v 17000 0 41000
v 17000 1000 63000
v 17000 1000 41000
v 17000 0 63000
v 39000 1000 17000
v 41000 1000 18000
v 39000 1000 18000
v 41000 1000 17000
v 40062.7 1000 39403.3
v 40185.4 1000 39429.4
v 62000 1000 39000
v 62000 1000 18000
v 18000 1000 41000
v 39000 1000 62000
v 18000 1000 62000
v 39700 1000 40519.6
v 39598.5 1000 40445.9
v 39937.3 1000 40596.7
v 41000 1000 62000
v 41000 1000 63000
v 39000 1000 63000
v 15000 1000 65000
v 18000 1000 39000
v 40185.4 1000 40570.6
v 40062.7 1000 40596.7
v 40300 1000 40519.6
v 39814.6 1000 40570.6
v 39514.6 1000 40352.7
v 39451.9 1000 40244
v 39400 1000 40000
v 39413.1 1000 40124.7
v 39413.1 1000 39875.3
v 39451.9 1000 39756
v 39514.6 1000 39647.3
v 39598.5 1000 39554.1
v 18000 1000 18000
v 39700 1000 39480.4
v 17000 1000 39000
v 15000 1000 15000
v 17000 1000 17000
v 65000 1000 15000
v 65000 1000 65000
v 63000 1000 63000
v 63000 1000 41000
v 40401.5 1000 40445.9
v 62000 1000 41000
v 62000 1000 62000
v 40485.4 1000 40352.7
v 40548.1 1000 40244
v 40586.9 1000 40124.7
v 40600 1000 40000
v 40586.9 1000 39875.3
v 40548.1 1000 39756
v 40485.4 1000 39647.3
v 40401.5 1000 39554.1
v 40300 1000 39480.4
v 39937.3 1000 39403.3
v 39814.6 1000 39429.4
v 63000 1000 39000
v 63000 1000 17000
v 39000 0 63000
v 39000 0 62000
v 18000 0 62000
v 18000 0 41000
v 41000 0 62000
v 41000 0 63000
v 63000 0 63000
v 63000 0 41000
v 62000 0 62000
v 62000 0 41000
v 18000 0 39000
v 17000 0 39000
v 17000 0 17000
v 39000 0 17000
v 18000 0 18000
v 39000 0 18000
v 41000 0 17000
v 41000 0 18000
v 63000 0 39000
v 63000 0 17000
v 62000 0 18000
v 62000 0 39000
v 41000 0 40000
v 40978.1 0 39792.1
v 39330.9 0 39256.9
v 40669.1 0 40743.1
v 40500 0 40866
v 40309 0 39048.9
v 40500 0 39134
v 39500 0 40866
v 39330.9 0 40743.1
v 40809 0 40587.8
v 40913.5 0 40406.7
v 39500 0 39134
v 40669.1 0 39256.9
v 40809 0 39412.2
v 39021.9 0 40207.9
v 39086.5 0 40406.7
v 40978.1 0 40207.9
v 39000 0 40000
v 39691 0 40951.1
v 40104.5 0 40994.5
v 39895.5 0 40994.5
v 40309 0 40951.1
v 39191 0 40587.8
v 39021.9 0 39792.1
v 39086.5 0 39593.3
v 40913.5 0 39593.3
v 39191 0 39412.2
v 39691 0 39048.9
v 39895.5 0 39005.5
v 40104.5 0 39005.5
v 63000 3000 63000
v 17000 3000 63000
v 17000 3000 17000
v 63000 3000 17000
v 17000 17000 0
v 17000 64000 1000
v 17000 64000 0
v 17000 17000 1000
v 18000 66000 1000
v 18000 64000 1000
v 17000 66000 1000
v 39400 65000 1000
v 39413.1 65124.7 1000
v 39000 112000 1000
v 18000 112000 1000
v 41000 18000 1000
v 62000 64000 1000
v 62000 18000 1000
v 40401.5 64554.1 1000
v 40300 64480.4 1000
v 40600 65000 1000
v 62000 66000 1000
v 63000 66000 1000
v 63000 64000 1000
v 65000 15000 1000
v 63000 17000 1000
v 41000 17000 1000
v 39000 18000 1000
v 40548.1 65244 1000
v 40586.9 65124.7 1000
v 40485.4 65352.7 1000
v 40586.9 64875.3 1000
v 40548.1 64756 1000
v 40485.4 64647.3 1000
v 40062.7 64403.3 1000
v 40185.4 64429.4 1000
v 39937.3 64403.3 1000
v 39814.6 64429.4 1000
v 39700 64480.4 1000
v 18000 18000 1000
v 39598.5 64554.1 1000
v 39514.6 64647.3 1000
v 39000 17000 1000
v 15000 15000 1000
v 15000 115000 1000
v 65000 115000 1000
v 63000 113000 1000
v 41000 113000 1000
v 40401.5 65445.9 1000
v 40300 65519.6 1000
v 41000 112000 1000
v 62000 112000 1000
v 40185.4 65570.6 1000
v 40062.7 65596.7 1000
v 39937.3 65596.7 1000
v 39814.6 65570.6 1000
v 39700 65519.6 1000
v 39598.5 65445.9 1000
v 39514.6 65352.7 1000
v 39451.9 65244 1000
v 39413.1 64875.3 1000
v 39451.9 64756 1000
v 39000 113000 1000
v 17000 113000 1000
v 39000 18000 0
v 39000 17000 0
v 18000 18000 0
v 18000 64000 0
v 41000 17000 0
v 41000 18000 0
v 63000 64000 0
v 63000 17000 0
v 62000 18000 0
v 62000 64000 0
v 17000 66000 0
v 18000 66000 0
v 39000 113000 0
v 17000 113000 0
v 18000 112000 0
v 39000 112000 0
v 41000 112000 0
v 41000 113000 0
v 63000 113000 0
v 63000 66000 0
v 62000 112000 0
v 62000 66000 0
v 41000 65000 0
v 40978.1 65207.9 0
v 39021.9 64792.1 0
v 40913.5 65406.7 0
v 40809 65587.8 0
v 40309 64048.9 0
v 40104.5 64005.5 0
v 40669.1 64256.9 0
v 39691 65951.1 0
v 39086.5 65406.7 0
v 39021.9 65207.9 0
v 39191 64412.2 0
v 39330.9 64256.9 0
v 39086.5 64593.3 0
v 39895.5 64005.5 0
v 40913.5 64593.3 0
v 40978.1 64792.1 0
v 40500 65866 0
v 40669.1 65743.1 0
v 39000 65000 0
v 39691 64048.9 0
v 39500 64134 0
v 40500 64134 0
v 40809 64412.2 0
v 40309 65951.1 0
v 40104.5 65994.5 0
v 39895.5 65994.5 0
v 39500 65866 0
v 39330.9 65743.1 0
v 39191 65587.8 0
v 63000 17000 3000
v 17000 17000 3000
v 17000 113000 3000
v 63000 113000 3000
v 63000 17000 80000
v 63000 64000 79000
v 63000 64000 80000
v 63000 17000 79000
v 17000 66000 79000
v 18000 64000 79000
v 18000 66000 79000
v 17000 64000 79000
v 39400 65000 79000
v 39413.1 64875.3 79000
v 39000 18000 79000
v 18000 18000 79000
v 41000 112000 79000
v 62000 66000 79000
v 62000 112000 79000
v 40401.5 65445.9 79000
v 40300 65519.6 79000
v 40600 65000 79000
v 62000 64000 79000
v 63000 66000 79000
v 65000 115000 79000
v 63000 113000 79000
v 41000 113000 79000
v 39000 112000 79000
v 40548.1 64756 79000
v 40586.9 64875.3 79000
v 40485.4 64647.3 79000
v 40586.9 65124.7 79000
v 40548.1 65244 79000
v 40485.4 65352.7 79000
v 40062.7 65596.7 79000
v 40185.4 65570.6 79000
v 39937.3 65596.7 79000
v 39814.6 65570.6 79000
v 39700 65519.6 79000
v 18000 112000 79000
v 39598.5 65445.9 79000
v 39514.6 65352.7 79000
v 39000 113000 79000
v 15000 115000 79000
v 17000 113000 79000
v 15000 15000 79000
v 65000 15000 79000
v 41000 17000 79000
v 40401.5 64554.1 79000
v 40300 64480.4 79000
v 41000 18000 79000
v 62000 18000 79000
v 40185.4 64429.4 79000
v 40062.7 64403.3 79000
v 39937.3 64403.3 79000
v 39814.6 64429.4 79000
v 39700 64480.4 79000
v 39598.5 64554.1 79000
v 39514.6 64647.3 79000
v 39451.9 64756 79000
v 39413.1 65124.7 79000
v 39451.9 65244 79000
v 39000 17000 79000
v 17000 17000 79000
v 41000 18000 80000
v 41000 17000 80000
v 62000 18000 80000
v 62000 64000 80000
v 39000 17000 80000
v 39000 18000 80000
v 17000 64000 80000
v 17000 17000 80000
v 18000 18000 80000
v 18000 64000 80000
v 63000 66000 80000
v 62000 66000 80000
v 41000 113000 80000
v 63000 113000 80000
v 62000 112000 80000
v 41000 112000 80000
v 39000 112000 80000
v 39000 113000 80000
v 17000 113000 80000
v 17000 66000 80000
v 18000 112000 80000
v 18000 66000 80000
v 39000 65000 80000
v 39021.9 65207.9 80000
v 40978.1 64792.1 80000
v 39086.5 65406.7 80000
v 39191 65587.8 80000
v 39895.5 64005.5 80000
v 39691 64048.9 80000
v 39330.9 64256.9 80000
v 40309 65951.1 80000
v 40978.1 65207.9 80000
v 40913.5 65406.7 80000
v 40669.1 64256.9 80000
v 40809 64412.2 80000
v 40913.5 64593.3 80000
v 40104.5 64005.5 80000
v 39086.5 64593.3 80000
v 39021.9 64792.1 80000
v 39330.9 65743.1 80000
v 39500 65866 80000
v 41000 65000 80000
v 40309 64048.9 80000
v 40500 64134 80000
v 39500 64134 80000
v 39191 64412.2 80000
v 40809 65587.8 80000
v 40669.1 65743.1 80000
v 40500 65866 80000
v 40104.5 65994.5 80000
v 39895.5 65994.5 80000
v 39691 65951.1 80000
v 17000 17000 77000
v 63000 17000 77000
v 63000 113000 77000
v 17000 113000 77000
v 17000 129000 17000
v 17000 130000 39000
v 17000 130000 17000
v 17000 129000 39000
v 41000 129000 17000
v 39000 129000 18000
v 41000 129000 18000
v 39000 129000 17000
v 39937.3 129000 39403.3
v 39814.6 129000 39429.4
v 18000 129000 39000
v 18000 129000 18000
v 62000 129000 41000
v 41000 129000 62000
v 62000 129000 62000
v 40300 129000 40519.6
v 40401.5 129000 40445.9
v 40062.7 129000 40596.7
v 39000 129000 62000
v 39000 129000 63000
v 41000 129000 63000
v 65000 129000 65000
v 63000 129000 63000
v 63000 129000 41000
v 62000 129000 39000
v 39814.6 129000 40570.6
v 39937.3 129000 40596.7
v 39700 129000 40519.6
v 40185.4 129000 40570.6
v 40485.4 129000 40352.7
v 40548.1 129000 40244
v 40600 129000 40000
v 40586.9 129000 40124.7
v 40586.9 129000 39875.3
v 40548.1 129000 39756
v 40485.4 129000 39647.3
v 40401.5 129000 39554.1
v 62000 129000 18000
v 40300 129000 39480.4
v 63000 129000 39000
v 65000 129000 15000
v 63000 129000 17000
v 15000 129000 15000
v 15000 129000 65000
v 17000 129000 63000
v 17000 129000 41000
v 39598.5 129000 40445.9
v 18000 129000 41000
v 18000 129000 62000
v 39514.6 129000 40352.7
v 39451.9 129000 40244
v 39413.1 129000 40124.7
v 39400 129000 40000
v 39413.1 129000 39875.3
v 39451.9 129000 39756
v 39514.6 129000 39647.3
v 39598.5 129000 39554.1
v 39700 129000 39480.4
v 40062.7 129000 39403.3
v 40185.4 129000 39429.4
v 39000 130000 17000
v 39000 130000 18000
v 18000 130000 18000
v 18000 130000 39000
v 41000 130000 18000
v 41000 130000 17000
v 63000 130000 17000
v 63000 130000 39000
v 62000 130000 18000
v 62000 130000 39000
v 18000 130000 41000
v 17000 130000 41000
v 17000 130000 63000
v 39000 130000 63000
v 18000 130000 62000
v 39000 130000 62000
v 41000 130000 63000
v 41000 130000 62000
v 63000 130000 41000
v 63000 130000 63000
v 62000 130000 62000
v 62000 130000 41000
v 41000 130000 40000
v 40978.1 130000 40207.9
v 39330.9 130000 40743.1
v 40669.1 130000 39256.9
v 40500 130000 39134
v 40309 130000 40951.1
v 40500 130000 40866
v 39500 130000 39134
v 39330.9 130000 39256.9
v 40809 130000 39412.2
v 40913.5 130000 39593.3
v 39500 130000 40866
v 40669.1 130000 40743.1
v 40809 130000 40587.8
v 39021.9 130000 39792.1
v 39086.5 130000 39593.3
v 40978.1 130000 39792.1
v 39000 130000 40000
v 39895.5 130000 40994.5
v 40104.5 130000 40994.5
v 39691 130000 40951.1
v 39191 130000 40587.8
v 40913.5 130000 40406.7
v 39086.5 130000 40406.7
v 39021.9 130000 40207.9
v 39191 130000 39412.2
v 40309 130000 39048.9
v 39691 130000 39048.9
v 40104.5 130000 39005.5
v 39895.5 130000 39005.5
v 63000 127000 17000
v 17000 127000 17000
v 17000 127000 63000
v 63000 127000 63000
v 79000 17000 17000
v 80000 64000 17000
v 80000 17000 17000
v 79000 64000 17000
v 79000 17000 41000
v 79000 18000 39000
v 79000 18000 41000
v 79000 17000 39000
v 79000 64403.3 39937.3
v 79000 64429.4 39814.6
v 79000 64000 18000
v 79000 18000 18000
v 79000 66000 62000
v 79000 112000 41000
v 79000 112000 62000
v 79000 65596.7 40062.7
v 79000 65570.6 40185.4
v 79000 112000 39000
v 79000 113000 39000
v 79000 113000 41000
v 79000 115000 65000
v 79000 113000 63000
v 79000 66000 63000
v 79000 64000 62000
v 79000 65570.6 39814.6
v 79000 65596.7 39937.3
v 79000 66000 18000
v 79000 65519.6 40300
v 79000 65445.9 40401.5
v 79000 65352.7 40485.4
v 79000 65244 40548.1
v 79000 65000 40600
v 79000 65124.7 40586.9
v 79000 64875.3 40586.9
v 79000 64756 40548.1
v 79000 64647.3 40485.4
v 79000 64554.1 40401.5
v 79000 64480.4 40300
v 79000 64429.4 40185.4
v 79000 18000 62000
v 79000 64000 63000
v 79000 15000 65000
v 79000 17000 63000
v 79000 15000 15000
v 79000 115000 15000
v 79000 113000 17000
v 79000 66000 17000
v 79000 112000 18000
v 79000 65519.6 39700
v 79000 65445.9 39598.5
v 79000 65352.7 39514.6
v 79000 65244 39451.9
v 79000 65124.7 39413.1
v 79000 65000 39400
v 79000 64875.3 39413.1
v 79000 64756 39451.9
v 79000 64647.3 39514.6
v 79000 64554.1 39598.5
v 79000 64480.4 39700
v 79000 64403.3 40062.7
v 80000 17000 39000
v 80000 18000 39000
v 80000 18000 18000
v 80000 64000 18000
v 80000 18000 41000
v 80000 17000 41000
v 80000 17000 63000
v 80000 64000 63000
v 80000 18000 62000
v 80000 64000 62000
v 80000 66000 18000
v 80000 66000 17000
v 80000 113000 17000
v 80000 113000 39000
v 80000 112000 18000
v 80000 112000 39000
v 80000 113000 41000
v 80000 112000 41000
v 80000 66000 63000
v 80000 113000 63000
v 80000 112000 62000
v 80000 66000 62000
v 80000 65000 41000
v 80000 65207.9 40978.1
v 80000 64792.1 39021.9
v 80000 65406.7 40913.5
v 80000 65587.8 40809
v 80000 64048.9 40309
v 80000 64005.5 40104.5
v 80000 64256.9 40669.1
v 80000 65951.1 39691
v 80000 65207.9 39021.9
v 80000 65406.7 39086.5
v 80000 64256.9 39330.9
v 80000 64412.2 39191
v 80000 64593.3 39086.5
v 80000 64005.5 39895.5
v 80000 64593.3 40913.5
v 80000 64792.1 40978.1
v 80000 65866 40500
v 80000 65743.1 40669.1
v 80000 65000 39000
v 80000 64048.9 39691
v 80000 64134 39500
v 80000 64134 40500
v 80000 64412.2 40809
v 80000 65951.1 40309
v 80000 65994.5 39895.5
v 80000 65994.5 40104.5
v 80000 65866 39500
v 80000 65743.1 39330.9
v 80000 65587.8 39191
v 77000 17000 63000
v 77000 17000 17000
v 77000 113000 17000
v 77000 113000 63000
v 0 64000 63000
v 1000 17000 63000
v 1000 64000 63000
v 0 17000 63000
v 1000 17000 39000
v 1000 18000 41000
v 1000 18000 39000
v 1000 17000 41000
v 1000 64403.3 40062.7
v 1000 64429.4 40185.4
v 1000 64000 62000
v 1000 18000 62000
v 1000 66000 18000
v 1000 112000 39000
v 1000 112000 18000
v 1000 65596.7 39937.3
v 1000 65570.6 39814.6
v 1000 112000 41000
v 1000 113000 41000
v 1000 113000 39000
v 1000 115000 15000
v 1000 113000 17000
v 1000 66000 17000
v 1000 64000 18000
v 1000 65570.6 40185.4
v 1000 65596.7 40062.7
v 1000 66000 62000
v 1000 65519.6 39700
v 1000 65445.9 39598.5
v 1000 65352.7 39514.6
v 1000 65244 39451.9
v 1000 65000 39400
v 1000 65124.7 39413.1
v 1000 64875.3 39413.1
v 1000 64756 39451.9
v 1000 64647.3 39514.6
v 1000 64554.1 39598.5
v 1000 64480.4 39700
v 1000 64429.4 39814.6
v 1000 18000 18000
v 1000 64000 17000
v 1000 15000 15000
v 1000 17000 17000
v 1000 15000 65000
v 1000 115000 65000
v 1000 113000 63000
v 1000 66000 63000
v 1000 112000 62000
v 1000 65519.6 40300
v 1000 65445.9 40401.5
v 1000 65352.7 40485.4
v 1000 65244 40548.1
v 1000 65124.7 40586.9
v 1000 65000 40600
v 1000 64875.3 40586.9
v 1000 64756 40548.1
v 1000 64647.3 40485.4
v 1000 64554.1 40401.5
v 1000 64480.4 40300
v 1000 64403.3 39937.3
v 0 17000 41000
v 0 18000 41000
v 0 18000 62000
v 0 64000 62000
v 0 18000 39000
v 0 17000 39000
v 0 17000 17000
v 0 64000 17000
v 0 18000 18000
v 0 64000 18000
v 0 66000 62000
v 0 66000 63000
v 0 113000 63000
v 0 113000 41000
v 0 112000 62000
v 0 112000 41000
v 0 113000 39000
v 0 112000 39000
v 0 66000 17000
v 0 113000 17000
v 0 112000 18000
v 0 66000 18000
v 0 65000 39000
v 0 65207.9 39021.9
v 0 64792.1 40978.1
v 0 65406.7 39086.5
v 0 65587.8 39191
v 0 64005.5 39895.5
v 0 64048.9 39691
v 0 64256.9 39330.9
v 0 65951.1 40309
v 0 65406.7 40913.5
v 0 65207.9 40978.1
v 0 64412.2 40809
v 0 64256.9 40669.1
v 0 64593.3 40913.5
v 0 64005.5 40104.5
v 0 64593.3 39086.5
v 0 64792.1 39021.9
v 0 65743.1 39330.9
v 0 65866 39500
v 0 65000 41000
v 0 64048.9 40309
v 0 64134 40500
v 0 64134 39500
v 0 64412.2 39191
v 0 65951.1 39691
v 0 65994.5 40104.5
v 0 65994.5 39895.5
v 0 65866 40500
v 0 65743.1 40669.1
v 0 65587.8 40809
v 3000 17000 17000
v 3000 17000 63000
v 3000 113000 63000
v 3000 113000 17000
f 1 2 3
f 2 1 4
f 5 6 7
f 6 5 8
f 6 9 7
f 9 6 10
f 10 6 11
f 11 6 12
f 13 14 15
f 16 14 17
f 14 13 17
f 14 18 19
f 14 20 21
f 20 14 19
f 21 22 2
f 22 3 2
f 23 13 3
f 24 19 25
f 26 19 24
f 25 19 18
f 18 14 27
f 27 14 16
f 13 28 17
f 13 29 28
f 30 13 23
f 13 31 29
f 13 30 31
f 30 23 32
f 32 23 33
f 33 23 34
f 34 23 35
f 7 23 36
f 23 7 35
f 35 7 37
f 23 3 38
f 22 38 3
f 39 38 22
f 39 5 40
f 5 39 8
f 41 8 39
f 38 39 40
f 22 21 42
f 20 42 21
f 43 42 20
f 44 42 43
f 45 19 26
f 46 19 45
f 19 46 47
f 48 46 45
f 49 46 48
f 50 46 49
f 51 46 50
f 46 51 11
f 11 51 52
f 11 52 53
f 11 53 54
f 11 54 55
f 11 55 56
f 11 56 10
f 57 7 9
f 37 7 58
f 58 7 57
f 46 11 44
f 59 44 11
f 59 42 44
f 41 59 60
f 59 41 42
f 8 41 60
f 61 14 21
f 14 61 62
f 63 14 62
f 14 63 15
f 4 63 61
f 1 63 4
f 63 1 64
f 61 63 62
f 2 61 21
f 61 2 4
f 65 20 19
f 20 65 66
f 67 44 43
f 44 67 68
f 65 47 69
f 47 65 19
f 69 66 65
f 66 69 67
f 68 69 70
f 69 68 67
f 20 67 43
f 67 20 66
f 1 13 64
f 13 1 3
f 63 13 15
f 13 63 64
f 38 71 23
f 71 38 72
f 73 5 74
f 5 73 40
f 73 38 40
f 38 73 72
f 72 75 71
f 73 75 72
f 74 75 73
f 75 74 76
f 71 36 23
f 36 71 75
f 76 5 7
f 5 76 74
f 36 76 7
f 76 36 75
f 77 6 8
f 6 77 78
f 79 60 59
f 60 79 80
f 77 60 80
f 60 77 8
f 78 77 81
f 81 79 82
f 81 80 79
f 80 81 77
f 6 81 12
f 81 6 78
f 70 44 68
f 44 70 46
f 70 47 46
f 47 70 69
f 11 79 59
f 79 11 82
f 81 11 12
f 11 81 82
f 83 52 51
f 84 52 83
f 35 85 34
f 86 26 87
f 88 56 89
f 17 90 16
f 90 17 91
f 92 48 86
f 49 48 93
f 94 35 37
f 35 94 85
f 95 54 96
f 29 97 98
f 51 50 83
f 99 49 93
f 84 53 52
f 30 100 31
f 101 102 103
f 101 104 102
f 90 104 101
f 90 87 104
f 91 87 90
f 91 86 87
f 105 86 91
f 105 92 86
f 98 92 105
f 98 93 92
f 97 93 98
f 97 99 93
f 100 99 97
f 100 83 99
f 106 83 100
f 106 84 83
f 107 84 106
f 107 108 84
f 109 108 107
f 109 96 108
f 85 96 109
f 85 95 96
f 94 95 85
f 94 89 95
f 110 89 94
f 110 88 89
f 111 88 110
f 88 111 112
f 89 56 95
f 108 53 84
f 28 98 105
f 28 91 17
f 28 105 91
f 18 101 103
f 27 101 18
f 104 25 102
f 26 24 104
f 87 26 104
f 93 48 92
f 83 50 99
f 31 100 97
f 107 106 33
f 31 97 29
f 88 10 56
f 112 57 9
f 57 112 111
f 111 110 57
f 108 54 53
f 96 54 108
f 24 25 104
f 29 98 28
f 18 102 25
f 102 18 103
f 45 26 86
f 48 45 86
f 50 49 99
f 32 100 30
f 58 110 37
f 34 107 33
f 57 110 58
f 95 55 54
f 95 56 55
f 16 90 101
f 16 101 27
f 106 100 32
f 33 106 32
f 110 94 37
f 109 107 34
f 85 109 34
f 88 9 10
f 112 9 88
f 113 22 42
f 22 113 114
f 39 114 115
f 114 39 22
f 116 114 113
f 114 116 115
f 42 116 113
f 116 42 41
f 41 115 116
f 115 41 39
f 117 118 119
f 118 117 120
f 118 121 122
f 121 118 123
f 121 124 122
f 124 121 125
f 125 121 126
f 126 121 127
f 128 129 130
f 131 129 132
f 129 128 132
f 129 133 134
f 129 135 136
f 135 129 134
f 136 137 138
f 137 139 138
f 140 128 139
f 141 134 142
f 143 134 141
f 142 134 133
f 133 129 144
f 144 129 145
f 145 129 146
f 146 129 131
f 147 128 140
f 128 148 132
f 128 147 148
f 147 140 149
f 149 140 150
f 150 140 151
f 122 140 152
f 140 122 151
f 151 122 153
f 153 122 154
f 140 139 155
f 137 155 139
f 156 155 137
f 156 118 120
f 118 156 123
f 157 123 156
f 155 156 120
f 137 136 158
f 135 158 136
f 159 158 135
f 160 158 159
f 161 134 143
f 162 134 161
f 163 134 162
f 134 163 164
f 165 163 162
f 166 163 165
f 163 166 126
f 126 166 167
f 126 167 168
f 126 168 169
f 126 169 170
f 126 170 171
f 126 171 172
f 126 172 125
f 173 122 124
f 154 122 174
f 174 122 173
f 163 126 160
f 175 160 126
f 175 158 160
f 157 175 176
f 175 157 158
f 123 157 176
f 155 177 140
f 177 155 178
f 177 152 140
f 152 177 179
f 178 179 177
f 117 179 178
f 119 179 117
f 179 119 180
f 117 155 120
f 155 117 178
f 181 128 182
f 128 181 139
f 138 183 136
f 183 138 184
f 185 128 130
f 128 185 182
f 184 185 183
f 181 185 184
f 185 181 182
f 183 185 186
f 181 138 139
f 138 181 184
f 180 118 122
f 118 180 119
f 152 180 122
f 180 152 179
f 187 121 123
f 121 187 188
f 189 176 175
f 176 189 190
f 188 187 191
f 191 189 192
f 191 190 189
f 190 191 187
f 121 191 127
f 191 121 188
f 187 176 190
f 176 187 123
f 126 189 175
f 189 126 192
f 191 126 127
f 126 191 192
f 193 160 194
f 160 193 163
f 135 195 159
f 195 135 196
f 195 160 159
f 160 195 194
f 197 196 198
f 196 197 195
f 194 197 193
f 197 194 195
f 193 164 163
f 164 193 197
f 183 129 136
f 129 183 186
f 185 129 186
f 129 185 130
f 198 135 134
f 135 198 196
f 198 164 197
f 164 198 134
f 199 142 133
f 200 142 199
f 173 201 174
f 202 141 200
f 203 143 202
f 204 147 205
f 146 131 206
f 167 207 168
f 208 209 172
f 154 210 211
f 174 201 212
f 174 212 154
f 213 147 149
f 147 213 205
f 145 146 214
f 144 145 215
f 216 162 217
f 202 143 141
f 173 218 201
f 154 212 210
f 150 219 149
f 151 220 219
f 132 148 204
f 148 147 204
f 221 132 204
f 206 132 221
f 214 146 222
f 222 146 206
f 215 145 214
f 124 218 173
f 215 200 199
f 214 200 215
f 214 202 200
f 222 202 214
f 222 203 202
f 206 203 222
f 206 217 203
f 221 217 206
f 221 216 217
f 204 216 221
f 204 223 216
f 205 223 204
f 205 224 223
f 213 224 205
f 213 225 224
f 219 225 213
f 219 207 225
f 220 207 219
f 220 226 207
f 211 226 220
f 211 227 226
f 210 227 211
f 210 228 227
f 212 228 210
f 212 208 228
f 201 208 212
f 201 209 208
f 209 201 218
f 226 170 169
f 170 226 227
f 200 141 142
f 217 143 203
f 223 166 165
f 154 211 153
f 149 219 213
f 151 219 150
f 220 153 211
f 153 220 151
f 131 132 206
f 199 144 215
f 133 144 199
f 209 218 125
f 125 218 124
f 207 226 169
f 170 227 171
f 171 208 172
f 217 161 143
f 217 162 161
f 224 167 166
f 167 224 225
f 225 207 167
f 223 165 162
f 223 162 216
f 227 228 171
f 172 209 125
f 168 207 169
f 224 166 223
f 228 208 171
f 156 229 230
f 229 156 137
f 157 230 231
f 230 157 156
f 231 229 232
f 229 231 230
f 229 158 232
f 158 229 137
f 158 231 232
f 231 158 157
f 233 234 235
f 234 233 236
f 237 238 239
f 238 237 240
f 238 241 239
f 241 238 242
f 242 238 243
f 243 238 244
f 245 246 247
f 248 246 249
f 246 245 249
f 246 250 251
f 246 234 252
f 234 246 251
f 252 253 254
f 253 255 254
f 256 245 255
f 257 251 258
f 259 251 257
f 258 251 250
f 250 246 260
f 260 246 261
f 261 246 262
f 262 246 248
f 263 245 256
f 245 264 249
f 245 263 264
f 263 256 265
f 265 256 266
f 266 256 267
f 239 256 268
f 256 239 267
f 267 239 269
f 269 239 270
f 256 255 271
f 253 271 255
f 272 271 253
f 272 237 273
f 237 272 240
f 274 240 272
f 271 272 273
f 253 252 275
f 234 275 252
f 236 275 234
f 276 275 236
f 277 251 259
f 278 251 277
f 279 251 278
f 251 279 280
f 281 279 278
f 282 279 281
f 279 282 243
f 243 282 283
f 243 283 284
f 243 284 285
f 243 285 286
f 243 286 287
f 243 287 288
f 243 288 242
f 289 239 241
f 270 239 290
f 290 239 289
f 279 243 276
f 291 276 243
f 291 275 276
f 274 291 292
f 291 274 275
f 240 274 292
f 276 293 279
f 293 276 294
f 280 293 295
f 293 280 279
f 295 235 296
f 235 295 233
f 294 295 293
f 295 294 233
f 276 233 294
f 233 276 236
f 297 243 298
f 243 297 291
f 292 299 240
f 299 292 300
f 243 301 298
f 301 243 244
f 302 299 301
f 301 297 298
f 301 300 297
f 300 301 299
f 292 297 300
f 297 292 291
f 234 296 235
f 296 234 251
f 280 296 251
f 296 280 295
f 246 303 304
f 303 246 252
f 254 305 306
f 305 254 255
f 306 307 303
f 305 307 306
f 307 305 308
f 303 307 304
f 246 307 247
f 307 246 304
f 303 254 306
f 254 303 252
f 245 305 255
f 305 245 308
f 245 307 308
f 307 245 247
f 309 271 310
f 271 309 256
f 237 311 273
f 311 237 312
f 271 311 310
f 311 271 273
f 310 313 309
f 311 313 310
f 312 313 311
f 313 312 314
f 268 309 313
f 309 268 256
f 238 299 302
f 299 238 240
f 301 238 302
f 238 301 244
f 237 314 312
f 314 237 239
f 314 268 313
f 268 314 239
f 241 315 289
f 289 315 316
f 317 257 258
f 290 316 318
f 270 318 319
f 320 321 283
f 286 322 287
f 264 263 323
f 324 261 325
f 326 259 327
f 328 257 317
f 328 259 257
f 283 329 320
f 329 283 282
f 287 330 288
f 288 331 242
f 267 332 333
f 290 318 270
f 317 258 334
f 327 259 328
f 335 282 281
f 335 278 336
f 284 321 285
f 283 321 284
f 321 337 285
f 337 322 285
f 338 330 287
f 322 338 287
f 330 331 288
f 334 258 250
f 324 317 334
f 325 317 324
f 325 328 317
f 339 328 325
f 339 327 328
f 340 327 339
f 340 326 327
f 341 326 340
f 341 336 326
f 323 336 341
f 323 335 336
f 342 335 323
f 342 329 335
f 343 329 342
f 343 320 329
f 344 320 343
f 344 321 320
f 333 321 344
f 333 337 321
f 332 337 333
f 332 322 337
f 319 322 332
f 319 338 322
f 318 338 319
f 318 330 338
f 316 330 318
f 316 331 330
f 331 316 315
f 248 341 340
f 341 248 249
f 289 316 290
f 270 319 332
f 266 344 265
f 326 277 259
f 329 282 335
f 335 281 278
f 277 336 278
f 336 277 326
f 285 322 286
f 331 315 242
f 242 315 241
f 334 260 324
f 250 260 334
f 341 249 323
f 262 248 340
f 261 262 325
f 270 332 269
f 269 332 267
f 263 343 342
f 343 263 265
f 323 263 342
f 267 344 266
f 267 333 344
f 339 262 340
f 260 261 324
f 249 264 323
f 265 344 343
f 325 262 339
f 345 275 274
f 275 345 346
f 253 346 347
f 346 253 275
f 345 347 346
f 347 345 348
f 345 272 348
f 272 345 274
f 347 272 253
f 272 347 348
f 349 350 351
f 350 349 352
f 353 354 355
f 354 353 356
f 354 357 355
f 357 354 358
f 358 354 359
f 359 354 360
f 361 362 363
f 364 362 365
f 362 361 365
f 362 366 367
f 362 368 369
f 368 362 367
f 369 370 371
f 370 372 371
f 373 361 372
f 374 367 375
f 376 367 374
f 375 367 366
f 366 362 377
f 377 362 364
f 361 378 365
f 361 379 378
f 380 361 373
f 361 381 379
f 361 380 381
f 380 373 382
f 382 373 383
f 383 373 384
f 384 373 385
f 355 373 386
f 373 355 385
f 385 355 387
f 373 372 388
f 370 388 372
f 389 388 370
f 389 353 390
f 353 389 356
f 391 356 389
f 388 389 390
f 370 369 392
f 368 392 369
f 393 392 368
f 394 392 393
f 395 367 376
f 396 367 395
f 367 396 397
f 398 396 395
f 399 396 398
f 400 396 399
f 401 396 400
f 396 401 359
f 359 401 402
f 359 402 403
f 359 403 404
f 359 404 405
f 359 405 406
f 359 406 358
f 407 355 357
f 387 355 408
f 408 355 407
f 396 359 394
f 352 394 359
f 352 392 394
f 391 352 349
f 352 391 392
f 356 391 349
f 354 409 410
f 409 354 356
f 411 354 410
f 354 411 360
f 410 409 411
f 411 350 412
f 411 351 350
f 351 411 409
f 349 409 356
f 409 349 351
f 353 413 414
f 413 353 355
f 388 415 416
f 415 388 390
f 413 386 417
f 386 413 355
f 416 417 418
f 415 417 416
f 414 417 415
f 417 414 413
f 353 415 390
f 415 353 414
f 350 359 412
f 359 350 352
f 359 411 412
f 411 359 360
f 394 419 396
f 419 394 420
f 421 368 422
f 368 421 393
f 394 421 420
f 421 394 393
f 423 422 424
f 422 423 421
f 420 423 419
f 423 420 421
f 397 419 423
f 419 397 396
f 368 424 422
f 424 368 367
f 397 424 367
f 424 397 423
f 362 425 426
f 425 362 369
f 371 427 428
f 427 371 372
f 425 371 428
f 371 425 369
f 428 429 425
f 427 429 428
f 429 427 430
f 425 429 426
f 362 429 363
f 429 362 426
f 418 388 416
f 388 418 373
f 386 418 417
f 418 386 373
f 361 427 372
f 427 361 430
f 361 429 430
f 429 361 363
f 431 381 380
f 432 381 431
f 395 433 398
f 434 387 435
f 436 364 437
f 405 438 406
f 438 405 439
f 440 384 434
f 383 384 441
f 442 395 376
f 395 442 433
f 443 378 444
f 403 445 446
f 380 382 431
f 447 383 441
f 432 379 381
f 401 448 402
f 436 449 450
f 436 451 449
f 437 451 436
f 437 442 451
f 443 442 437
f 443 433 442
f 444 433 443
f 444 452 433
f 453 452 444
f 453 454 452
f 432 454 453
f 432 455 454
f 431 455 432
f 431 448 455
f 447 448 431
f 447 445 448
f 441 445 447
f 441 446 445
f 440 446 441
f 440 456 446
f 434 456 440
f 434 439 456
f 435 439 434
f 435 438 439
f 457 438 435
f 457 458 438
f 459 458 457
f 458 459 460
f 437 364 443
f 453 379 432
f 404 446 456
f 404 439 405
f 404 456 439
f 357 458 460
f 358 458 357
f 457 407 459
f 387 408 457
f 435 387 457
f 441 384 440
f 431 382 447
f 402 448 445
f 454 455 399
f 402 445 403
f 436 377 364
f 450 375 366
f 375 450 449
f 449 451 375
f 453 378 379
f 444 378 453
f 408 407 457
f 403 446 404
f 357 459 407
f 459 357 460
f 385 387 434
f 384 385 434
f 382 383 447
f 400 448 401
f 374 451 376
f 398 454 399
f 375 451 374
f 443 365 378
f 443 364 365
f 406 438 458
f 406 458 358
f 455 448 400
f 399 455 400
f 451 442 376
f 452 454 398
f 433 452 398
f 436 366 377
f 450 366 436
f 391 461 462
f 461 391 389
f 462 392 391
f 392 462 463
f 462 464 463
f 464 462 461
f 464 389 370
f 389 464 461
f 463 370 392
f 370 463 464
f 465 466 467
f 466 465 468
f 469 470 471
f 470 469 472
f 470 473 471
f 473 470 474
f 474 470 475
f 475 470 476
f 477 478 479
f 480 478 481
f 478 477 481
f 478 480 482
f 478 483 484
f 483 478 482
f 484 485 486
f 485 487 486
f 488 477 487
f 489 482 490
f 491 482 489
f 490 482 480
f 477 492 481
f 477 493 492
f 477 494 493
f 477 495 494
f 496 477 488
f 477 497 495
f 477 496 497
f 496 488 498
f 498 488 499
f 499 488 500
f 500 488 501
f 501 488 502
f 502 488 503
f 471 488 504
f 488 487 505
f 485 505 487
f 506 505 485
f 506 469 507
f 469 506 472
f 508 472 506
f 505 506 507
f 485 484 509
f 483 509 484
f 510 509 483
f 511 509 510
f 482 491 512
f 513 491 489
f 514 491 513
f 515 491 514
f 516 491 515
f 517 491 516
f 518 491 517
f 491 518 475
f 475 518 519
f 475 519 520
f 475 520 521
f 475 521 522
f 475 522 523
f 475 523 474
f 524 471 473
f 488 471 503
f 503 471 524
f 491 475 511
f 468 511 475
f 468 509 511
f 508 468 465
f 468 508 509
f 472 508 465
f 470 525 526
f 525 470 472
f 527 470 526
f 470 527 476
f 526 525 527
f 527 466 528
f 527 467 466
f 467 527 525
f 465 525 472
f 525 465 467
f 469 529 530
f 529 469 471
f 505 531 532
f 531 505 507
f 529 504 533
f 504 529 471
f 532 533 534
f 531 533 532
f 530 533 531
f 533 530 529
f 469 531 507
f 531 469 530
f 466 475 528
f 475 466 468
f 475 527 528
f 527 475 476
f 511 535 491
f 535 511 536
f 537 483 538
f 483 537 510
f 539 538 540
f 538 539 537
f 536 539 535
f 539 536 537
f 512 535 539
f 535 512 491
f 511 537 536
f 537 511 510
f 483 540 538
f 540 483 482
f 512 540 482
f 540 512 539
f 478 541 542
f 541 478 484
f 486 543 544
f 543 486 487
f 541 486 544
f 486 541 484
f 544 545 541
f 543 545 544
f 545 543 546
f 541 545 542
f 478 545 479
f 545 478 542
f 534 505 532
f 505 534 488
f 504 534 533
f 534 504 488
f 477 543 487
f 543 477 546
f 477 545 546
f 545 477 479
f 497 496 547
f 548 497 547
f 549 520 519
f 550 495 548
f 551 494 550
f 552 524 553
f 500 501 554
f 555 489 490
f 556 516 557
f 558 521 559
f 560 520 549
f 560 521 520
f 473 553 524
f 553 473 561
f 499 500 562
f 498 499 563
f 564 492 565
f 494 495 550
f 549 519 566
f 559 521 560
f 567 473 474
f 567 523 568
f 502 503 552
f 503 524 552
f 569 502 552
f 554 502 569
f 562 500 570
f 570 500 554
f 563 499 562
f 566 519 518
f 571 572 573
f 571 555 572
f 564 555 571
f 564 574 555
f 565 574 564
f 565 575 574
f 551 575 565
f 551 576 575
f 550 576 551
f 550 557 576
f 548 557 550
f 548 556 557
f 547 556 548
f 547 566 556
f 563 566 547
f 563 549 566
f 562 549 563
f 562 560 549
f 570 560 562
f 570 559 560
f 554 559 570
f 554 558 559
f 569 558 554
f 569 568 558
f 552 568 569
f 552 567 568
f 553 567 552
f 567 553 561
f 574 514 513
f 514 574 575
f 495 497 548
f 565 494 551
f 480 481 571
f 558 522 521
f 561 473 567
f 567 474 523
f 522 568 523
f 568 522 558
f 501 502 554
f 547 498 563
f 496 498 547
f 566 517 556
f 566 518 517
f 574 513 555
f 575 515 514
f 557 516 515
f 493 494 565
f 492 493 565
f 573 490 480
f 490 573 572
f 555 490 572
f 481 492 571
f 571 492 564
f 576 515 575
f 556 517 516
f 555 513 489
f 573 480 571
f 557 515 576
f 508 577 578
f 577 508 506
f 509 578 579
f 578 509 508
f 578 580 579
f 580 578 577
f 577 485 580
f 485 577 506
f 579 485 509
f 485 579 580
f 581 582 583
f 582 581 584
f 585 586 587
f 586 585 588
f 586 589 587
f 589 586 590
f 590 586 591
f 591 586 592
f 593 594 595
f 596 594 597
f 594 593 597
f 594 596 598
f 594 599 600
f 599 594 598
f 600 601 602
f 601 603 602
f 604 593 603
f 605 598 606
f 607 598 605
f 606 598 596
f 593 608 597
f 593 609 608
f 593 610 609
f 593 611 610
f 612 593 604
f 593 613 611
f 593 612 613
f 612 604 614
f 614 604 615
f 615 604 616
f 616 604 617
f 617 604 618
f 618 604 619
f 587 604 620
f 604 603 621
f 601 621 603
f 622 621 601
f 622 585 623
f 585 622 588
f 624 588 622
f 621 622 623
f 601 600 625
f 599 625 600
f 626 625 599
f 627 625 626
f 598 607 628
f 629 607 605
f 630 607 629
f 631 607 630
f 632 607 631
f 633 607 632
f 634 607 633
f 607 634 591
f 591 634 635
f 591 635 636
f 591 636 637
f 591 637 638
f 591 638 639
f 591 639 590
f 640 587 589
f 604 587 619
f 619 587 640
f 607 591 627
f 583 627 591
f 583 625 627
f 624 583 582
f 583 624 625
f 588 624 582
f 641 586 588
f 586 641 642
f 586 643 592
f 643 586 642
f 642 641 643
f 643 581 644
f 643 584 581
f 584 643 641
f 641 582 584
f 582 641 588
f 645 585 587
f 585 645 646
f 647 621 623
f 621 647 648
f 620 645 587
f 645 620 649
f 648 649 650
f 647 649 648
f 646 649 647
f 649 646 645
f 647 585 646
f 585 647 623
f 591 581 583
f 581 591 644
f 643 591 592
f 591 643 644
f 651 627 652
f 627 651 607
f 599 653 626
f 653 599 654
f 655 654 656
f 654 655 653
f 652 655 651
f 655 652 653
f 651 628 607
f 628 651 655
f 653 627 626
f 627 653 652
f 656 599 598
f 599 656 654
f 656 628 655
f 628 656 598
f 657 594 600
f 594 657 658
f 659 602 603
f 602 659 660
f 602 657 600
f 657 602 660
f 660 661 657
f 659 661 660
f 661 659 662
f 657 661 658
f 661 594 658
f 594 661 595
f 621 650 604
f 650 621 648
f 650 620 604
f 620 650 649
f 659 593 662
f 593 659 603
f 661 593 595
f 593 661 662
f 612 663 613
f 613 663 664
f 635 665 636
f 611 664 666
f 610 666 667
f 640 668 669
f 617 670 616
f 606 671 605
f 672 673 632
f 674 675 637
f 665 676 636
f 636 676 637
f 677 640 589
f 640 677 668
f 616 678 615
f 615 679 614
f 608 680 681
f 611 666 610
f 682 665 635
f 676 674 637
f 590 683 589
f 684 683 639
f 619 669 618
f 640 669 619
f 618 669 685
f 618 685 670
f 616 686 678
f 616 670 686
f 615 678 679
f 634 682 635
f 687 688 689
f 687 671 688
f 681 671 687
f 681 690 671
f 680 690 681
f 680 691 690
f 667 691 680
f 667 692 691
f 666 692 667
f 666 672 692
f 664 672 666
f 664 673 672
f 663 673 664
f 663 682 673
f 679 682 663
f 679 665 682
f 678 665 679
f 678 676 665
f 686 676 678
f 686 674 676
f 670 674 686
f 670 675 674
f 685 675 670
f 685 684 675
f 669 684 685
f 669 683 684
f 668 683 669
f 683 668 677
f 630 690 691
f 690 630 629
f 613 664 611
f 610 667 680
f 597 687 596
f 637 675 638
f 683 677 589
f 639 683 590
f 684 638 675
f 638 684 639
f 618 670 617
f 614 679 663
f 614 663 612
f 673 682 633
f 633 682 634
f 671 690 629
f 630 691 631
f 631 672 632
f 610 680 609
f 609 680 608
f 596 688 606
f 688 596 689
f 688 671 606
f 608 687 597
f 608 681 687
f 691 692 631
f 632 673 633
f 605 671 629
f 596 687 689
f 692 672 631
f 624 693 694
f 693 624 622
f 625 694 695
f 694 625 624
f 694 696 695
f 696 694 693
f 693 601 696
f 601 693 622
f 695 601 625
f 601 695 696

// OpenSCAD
// first version : plate for ware
// units : micrometers = 10^-6 m = 10^-3 mm
/* 
    3D
   **********   
  3     2
    7 6
    4 5
  0     1
 
    Dev
   **********   
   
   7 6
   4 5 6 7 4
   0 1 2 3 0
   3 2

    Coords
   **********   
   
0,1,3,2
4,5,1,0
7,6,5,4
5,6,2,1
6,7,3,2
7,4,0,3

*/

Show_Rendering_Error=true; 
// hauptplatte
l       = 50000             ; // length = x axis
w       = 2*l                 ; // width = y axis
t       = 2000              ; // thickness
// central point
radius  = 1000              ; // radius
height  = 1000              ; // height
// borders
thick   = 1000              ; // thickness
// all plate 
delta   = 15000             ; // delta beetween plates



translate([delta,delta,0])   
    all_plate(l,w,t,radius,height,thick);

translate([delta+l,delta , 2* delta+ l])    
    rotate([0,180,0])
        all_plate(l,w,t,radius,height,thick);

translate([delta,0 , delta +l ])    
    rotate([-90,0,0])
        all_plate(l,l,t,radius,height,thick);

translate([delta, 2*delta + w , delta ])    
    rotate([90,0,0])
        all_plate(l,l,t,radius,height,thick);


translate([2*delta+l,delta , delta])    
    rotate([0,-90,0])
        all_plate(l,w,t,radius,height,thick);
translate([0, delta, delta+l])
    rotate([0,90,0])
        all_plate(l,w,t,radius,height,thick);


module all_plate(l,w,t,radius,height,thick){
    translate([l/2, w/2, 0]){ 
        color([1,0,0]) 
        cylinder(height,radius, radius*0.6); 
        };
    translate([t,t,0])
        border(l,thick, height, radius, t );

    translate([t+thick,t,0])
        rotate([0,0,90])
            border(w,thick, height, radius, t );

    translate([t,w-2*t+thick,0])
        border(l,thick, height, radius, t );

    translate([l-t,t,0])
        rotate([0,0,90])
            border(w,thick, height, radius, t );
        
    translate([0,0,height]) chamfered_plate(l,w,t);
    }

module border(length, thickness, height, radius, t){
    border_length = (length-2*t-2*radius)/2 ;
    color([0,1,0])
    cube([border_length , thickness, height]);
    translate([(length-2*t-2*radius)/2+2*radius,0,0])
        color([0,0,1])
        cube([border_length, thickness, height]);
    }
    
module chamfered_plate(l,w,t){
        
    polyhedron(
        points = [
            [0      ,0      ,0],        // 0
            [l      ,0      ,0],        // 1
            [l      ,w      ,0],        // 2
            [0      ,w      ,0],        // 3
            [t      ,t      ,t],        // 4
            [l-t    ,t      ,t],        // 5
            [l-t    ,w-t    ,t],        // 6
            [t      ,w-t    ,t]         // 7
            ],
        faces = [
            [0,1,2,3],                  // bottom
            [4,5,1,0],                  // front
            [7,6,5,4],                  // top
            [5,6,2,1],                  // right
            [6,7,3,2],                  // back
            [7,4,0,3]                   // left
            ]
        );
        
    }
    
